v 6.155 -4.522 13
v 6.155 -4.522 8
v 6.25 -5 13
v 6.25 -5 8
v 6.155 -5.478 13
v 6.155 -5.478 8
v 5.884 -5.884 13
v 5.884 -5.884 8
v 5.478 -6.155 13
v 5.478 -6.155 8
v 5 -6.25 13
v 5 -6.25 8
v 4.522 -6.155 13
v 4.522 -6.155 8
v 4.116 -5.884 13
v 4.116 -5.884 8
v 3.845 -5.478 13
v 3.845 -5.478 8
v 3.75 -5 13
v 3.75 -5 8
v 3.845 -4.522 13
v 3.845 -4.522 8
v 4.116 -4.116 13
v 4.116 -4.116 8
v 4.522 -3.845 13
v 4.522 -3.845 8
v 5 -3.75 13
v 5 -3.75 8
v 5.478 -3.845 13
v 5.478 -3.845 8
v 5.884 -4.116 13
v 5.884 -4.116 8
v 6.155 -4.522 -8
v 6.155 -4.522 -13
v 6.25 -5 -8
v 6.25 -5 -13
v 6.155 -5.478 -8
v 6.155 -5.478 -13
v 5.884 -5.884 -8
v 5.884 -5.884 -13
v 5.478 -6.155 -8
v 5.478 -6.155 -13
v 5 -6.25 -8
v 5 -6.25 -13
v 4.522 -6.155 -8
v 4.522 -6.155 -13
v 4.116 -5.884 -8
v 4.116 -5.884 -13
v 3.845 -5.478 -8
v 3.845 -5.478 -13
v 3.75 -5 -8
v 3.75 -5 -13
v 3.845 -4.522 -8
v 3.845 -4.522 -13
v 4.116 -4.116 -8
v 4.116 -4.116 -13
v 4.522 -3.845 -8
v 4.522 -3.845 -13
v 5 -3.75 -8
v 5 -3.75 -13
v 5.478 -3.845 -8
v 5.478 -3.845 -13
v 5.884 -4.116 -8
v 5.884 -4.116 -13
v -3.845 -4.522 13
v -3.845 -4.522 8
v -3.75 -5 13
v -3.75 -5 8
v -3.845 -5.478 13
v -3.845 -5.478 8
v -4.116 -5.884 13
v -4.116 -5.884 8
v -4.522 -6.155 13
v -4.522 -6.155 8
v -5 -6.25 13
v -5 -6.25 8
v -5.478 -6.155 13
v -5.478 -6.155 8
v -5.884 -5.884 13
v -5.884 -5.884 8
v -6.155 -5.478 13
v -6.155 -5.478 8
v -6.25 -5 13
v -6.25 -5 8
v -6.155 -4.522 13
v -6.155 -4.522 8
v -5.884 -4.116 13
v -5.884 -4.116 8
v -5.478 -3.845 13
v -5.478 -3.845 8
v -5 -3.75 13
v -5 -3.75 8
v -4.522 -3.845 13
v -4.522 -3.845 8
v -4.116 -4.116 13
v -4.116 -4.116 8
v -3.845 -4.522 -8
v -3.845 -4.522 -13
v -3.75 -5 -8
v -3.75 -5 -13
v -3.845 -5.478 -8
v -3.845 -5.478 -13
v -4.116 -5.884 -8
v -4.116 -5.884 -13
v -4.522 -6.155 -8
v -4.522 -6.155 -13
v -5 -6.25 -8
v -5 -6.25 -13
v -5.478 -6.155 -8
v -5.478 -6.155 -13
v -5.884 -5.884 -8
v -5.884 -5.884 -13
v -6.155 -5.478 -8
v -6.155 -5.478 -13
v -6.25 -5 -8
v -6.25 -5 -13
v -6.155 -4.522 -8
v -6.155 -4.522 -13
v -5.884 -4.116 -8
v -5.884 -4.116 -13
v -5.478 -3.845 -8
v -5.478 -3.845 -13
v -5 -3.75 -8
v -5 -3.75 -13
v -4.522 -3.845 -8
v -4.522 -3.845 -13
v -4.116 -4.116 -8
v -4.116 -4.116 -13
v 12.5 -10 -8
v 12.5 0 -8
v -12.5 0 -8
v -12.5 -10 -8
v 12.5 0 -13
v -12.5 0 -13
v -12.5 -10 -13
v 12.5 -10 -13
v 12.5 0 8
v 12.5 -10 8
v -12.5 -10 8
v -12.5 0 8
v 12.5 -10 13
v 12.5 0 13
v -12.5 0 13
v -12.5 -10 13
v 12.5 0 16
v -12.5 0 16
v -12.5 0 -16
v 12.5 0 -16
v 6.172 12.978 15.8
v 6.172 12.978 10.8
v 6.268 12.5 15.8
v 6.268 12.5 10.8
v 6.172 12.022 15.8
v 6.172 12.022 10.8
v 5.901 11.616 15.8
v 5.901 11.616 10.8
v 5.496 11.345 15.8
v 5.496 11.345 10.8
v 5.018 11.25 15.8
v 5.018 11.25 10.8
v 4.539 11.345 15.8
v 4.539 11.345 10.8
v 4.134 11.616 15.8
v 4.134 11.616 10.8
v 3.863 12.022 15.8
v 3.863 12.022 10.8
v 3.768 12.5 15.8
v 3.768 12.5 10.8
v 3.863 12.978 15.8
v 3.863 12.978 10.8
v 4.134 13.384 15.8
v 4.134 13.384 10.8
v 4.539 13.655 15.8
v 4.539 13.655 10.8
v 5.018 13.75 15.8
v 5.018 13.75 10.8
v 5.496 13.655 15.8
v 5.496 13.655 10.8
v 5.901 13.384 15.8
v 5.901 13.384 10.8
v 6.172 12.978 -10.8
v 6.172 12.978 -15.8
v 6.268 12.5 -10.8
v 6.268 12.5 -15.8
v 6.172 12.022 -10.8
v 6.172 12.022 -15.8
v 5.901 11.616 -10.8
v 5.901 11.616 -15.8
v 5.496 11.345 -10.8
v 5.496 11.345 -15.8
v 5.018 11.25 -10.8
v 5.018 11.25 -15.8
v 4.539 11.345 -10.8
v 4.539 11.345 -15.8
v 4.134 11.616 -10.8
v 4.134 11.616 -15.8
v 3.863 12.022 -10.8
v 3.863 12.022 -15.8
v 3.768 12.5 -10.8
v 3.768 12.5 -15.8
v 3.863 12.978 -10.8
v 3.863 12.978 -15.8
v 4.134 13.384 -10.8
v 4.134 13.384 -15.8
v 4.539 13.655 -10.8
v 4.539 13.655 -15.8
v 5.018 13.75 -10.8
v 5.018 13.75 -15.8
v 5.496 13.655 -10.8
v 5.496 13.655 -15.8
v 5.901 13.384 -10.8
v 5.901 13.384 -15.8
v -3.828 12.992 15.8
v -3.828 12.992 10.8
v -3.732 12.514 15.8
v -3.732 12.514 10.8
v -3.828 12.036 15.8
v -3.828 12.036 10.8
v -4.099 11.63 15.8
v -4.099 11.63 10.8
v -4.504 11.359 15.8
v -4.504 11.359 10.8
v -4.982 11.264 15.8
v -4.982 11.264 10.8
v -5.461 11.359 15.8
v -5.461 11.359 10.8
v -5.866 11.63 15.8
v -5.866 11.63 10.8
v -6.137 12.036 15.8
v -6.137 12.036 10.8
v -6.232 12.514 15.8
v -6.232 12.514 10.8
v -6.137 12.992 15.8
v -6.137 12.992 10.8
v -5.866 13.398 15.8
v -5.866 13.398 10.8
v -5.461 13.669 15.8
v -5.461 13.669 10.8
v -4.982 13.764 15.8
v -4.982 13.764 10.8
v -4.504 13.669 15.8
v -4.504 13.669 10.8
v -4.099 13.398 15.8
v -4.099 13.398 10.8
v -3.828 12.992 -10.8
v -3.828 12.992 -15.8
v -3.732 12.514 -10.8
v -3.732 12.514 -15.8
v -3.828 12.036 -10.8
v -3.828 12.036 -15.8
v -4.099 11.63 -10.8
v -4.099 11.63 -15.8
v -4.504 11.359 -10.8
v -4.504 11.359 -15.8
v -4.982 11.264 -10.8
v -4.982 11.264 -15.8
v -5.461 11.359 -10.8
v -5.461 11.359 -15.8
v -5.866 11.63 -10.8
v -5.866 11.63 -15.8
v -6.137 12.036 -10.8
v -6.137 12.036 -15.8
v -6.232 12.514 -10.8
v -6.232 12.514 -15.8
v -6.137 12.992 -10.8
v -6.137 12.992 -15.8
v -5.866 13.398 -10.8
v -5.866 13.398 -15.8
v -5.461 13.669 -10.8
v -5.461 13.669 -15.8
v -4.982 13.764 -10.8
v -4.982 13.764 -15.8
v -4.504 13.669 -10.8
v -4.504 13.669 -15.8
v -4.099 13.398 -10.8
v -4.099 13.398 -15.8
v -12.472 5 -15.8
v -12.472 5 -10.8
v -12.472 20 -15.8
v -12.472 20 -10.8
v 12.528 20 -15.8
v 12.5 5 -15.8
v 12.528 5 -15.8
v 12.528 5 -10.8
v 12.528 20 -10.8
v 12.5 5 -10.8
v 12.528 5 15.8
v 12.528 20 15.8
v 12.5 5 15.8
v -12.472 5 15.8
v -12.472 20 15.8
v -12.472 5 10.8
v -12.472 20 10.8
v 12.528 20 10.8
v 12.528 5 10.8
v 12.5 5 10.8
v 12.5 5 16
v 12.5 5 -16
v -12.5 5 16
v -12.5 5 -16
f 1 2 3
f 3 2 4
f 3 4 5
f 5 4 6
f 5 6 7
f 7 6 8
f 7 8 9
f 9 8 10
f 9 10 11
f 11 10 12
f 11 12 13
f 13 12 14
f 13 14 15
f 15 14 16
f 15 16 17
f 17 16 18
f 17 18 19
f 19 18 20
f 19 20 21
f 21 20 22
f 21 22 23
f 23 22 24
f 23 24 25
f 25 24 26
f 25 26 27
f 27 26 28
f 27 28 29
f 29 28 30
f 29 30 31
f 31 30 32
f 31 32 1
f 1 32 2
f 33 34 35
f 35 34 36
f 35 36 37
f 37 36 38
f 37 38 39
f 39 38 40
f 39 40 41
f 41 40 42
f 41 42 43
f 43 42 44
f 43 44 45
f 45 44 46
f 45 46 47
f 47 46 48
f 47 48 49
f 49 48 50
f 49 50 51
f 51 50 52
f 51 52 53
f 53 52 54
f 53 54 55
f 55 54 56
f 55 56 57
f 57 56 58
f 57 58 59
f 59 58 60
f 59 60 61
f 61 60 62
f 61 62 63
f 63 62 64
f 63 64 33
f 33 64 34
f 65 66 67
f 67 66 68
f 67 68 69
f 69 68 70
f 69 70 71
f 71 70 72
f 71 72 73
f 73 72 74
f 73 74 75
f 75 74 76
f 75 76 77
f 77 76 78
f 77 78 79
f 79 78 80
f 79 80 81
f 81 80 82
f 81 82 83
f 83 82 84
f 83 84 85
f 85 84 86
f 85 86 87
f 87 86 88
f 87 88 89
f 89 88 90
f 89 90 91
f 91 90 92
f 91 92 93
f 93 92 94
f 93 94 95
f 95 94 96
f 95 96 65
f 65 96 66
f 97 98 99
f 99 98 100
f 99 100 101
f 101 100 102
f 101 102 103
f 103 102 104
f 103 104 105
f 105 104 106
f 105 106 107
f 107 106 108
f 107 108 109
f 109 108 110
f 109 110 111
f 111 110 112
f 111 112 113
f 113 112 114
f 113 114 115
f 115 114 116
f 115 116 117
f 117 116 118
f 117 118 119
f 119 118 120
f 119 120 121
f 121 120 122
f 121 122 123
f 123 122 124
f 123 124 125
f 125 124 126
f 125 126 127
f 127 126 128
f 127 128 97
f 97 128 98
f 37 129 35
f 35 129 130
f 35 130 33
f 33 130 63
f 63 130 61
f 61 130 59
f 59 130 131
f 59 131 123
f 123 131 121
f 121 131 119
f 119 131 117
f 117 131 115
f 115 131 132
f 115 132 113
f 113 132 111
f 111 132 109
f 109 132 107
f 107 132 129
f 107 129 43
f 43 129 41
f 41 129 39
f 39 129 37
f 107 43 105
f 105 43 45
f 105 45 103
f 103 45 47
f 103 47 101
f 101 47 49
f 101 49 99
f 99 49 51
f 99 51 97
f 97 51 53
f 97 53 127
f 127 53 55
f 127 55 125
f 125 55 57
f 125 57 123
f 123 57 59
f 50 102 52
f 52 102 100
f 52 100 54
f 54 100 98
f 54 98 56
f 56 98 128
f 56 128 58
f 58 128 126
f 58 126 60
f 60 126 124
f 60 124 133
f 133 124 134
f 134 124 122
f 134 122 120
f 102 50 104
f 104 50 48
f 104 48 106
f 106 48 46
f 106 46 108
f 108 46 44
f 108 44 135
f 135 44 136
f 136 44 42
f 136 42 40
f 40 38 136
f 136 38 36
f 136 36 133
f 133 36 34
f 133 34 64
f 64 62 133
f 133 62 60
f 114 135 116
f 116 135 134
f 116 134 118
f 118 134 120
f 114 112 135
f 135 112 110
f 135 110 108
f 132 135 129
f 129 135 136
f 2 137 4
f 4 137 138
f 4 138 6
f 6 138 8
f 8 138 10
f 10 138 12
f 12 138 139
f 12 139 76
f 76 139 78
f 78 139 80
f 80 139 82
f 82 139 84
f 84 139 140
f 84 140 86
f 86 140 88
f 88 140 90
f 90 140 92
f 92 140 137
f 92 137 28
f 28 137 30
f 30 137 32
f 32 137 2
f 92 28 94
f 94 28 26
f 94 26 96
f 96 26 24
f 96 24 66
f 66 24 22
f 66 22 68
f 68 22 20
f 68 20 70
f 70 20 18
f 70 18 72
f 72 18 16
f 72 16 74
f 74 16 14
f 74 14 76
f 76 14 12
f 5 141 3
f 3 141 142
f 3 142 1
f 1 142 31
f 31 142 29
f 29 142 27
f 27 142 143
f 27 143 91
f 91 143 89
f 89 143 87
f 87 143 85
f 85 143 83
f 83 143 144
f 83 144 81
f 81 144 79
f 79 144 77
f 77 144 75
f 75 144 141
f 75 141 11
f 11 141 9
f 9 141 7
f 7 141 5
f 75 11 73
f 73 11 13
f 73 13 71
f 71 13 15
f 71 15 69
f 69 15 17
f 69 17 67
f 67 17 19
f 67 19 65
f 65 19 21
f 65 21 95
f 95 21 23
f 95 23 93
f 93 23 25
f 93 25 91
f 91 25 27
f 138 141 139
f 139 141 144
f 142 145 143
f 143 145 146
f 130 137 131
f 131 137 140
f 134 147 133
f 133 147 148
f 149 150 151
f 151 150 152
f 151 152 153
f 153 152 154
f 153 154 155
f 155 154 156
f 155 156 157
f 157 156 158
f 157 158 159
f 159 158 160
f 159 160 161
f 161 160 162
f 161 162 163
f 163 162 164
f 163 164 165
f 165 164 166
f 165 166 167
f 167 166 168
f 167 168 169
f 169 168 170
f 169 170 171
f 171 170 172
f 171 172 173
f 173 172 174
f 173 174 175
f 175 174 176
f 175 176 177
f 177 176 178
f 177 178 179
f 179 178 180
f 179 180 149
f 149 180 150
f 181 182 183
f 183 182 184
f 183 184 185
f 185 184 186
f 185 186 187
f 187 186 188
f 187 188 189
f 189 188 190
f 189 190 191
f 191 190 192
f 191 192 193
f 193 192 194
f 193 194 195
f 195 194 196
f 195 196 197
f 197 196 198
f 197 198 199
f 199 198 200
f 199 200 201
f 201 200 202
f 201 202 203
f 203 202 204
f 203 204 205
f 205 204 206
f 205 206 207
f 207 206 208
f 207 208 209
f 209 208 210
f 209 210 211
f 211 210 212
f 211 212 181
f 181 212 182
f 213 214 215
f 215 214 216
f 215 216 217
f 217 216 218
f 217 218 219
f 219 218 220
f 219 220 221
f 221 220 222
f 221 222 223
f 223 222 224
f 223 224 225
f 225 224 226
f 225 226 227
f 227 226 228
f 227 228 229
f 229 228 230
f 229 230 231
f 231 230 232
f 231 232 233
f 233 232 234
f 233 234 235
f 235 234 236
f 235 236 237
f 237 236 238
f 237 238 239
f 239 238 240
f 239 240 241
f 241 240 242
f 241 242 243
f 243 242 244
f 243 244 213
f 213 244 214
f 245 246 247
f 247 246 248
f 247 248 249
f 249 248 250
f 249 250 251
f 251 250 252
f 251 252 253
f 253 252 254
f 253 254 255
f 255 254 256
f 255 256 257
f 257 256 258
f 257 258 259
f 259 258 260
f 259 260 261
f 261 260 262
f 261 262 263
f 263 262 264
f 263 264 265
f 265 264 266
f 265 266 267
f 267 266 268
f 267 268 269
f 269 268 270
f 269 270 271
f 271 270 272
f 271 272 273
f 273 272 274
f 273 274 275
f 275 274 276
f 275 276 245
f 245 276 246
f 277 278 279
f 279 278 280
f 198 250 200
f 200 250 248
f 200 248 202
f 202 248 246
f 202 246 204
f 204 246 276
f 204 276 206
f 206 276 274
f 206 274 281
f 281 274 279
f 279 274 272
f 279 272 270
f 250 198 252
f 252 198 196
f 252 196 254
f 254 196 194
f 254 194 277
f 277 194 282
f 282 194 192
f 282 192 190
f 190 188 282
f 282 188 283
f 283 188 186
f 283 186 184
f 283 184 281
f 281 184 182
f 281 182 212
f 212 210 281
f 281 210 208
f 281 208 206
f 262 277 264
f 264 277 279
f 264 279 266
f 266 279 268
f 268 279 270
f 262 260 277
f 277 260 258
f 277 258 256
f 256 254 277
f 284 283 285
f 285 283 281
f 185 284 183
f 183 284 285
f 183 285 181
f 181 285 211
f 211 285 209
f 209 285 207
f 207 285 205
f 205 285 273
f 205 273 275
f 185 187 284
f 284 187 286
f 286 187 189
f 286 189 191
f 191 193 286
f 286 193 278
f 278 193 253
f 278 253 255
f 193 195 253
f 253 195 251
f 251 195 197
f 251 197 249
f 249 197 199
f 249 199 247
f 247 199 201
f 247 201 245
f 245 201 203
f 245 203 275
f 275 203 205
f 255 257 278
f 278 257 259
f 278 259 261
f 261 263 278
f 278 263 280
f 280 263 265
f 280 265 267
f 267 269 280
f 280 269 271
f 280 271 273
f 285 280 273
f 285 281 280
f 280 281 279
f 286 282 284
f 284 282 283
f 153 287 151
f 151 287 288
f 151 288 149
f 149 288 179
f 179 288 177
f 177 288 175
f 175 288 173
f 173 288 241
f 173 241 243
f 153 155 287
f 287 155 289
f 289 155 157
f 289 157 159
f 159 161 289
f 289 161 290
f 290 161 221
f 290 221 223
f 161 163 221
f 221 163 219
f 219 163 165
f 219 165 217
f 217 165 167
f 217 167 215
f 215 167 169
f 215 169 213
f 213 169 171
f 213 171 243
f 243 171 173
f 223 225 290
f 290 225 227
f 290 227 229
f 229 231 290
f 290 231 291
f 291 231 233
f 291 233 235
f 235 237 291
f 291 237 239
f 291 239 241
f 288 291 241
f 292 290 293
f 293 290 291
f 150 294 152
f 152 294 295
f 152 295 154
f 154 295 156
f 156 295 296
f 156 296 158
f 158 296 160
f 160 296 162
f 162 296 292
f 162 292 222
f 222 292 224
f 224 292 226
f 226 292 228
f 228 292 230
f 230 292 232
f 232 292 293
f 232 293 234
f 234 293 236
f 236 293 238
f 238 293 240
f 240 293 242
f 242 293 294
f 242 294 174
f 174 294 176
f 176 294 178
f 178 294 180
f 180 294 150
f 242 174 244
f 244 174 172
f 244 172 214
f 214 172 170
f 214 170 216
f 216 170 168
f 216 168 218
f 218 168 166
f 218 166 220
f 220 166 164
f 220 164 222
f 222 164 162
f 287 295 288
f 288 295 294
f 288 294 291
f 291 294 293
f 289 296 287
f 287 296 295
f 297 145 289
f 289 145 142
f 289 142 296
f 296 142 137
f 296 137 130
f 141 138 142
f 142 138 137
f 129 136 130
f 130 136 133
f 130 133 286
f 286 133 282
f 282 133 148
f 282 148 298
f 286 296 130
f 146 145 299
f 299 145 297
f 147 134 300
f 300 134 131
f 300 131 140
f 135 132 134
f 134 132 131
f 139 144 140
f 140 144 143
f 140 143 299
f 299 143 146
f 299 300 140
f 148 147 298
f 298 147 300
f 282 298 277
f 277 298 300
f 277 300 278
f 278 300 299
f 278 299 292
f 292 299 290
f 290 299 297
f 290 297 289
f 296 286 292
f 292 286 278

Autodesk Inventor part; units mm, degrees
ref_plane "YZ Plane" through (0, 0, 0) normal (1, 0, 0) x (0, 1, 0)
ref_plane "XZ Plane" through (0, 0, 0) normal (0, 1, 0) x (-1, 0, 0)
ref_plane "XY Plane" through (0, 0, 0) normal (0, 0, 1) x (1, 0, 0)
sketch "스케치1" plane through (0, 0, 0) normal (0, 1, 0) x (-1, 0, 0)
  line L0 (-12.5, 16) -> (12.5, 16)
  line L1 (12.5, 16) -> (12.5, -16)
  line L2 (12.5, -16) -> (-12.5, -16)
  line L3 (-12.5, -16) -> (-12.5, 16)
  line L4 (-12.5, 16) -> (12.5, -16) construction
  line L5 (12.5, 16) -> (-12.5, -16) construction
  point P0 (0, 0)
  dimension "d0" = 25
  dimension "d1" = 32
extrude "돌출1" add sketch "스케치1" along normal blind 5
sketch "스케치2" plane through (0, 5, 0) normal (0, 1, 0) x (1, 0, 0)
  line L0 (-12.4719, -15.8) -> (12.5281, -15.8)
  line L1 (12.5281, -15.8) -> (12.5281, -10.8)
  line L2 (12.5281, -10.8) -> (-12.4719, -10.8)
  line L3 (-12.4719, -10.8) -> (-12.4719, -15.8)
  line L4 (-12.5, 16) -> (-12.5, -16) projected
  line L5 (-12.5, 0) -> (12.5281, 0)
  line L6 (-12.4719, 15.8) -> (12.5281, 15.8)
  line L7 (12.5281, 15.8) -> (12.5281, 10.8)
  line L8 (12.5281, 10.8) -> (-12.4719, 10.8)
  line L9 (-12.4719, 10.8) -> (-12.4719, 15.8)
  line L10 (-12.5, -16) -> (-12.5, 16)
  point P0 (0, 0)
  dimension "d4" = 25
  dimension "d5" = 5
  dimension "d24" = 21.6
extrude "돌출2" add sketch "스케치2" along normal blind 15
sketch "스케치3" plane through (12.5, 5, -15.8) normal (0, 0, -1) x (-1, 0, 0)
  circle A0 centre (7.4824, 7.5) radius 1.25
  line L0 (12.5, -5) -> (12.4719, 15)
  line L1 (24.9719, 15) -> (-0.0281, 15) projected
  line L2 (0, 0) -> (25, 0) projected
  circle A1 centre (17.4824, 7.514) radius 1.25
  dimension "d8" = 2.5
  dimension "d9" = 5
  dimension "d10" = 7.5
extrude "돌출3" cut sketch "스케치3" against normal up to surface (31.6 mm away)
sketch "스케치4" plane through (0, 0, 0) normal (0, -1, 0) x (1, 0, 0)
  line L0 (-12.5, -16) -> (-12.5, 16) projected
  line L1 (12.5, 10.8) -> (12.5, -10.8) projected
  line L2 (-12.5, 13) -> (12.5, 13)
  line L3 (12.5, 13) -> (12.5, 8)
  line L4 (12.5, 8) -> (-12.5, 8)
  line L5 (-12.5, 8) -> (-12.5, 13)
  line L6 (-12.5, 0) -> (12.5, 0)
  line L7 (-12.5, 16) -> (-12.5, -16)
  line L8 (12.5, -10.8) -> (12.5, 10.8)
  line L9 (-12.5, -13) -> (12.5, -13)
  line L10 (12.5, -13) -> (12.5, -8)
  line L11 (12.5, -8) -> (-12.5, -8)
  line L12 (-12.5, -8) -> (-12.5, -13)
  point P0 (0, 0)
  point P1 (12.5, -8)
  point P2 (-12.5, -13)
  dimension "d13" = 8
  dimension "d14" = 5
extrude "돌출4" add sketch "스케치4" along normal blind 10 contours L0 L11 L1 L10 L9 | L0 L2 L3 L1 L4
sketch "스케치5" plane through (12.5, 0, -13) normal (0, 0, -1) x (-1, 0, 0)
  circle A0 centre (17.5, -5) radius 1.25
  line L0 (25, -10) -> (0, -10) projected
  line L1 (25, 0) -> (25, -10) projected
  line L2 (12.5, -10) -> (12.5, 0)
  circle A1 centre (7.5, -5) radius 1.25
  dimension "d17" = 2.5
  dimension "d18" = 5
  dimension "d22" = 5
extrude "돌출5" cut sketch "스케치5" against normal up to surface (26 mm away)
properties part number "Tensile_test_bottom_adapter2"
